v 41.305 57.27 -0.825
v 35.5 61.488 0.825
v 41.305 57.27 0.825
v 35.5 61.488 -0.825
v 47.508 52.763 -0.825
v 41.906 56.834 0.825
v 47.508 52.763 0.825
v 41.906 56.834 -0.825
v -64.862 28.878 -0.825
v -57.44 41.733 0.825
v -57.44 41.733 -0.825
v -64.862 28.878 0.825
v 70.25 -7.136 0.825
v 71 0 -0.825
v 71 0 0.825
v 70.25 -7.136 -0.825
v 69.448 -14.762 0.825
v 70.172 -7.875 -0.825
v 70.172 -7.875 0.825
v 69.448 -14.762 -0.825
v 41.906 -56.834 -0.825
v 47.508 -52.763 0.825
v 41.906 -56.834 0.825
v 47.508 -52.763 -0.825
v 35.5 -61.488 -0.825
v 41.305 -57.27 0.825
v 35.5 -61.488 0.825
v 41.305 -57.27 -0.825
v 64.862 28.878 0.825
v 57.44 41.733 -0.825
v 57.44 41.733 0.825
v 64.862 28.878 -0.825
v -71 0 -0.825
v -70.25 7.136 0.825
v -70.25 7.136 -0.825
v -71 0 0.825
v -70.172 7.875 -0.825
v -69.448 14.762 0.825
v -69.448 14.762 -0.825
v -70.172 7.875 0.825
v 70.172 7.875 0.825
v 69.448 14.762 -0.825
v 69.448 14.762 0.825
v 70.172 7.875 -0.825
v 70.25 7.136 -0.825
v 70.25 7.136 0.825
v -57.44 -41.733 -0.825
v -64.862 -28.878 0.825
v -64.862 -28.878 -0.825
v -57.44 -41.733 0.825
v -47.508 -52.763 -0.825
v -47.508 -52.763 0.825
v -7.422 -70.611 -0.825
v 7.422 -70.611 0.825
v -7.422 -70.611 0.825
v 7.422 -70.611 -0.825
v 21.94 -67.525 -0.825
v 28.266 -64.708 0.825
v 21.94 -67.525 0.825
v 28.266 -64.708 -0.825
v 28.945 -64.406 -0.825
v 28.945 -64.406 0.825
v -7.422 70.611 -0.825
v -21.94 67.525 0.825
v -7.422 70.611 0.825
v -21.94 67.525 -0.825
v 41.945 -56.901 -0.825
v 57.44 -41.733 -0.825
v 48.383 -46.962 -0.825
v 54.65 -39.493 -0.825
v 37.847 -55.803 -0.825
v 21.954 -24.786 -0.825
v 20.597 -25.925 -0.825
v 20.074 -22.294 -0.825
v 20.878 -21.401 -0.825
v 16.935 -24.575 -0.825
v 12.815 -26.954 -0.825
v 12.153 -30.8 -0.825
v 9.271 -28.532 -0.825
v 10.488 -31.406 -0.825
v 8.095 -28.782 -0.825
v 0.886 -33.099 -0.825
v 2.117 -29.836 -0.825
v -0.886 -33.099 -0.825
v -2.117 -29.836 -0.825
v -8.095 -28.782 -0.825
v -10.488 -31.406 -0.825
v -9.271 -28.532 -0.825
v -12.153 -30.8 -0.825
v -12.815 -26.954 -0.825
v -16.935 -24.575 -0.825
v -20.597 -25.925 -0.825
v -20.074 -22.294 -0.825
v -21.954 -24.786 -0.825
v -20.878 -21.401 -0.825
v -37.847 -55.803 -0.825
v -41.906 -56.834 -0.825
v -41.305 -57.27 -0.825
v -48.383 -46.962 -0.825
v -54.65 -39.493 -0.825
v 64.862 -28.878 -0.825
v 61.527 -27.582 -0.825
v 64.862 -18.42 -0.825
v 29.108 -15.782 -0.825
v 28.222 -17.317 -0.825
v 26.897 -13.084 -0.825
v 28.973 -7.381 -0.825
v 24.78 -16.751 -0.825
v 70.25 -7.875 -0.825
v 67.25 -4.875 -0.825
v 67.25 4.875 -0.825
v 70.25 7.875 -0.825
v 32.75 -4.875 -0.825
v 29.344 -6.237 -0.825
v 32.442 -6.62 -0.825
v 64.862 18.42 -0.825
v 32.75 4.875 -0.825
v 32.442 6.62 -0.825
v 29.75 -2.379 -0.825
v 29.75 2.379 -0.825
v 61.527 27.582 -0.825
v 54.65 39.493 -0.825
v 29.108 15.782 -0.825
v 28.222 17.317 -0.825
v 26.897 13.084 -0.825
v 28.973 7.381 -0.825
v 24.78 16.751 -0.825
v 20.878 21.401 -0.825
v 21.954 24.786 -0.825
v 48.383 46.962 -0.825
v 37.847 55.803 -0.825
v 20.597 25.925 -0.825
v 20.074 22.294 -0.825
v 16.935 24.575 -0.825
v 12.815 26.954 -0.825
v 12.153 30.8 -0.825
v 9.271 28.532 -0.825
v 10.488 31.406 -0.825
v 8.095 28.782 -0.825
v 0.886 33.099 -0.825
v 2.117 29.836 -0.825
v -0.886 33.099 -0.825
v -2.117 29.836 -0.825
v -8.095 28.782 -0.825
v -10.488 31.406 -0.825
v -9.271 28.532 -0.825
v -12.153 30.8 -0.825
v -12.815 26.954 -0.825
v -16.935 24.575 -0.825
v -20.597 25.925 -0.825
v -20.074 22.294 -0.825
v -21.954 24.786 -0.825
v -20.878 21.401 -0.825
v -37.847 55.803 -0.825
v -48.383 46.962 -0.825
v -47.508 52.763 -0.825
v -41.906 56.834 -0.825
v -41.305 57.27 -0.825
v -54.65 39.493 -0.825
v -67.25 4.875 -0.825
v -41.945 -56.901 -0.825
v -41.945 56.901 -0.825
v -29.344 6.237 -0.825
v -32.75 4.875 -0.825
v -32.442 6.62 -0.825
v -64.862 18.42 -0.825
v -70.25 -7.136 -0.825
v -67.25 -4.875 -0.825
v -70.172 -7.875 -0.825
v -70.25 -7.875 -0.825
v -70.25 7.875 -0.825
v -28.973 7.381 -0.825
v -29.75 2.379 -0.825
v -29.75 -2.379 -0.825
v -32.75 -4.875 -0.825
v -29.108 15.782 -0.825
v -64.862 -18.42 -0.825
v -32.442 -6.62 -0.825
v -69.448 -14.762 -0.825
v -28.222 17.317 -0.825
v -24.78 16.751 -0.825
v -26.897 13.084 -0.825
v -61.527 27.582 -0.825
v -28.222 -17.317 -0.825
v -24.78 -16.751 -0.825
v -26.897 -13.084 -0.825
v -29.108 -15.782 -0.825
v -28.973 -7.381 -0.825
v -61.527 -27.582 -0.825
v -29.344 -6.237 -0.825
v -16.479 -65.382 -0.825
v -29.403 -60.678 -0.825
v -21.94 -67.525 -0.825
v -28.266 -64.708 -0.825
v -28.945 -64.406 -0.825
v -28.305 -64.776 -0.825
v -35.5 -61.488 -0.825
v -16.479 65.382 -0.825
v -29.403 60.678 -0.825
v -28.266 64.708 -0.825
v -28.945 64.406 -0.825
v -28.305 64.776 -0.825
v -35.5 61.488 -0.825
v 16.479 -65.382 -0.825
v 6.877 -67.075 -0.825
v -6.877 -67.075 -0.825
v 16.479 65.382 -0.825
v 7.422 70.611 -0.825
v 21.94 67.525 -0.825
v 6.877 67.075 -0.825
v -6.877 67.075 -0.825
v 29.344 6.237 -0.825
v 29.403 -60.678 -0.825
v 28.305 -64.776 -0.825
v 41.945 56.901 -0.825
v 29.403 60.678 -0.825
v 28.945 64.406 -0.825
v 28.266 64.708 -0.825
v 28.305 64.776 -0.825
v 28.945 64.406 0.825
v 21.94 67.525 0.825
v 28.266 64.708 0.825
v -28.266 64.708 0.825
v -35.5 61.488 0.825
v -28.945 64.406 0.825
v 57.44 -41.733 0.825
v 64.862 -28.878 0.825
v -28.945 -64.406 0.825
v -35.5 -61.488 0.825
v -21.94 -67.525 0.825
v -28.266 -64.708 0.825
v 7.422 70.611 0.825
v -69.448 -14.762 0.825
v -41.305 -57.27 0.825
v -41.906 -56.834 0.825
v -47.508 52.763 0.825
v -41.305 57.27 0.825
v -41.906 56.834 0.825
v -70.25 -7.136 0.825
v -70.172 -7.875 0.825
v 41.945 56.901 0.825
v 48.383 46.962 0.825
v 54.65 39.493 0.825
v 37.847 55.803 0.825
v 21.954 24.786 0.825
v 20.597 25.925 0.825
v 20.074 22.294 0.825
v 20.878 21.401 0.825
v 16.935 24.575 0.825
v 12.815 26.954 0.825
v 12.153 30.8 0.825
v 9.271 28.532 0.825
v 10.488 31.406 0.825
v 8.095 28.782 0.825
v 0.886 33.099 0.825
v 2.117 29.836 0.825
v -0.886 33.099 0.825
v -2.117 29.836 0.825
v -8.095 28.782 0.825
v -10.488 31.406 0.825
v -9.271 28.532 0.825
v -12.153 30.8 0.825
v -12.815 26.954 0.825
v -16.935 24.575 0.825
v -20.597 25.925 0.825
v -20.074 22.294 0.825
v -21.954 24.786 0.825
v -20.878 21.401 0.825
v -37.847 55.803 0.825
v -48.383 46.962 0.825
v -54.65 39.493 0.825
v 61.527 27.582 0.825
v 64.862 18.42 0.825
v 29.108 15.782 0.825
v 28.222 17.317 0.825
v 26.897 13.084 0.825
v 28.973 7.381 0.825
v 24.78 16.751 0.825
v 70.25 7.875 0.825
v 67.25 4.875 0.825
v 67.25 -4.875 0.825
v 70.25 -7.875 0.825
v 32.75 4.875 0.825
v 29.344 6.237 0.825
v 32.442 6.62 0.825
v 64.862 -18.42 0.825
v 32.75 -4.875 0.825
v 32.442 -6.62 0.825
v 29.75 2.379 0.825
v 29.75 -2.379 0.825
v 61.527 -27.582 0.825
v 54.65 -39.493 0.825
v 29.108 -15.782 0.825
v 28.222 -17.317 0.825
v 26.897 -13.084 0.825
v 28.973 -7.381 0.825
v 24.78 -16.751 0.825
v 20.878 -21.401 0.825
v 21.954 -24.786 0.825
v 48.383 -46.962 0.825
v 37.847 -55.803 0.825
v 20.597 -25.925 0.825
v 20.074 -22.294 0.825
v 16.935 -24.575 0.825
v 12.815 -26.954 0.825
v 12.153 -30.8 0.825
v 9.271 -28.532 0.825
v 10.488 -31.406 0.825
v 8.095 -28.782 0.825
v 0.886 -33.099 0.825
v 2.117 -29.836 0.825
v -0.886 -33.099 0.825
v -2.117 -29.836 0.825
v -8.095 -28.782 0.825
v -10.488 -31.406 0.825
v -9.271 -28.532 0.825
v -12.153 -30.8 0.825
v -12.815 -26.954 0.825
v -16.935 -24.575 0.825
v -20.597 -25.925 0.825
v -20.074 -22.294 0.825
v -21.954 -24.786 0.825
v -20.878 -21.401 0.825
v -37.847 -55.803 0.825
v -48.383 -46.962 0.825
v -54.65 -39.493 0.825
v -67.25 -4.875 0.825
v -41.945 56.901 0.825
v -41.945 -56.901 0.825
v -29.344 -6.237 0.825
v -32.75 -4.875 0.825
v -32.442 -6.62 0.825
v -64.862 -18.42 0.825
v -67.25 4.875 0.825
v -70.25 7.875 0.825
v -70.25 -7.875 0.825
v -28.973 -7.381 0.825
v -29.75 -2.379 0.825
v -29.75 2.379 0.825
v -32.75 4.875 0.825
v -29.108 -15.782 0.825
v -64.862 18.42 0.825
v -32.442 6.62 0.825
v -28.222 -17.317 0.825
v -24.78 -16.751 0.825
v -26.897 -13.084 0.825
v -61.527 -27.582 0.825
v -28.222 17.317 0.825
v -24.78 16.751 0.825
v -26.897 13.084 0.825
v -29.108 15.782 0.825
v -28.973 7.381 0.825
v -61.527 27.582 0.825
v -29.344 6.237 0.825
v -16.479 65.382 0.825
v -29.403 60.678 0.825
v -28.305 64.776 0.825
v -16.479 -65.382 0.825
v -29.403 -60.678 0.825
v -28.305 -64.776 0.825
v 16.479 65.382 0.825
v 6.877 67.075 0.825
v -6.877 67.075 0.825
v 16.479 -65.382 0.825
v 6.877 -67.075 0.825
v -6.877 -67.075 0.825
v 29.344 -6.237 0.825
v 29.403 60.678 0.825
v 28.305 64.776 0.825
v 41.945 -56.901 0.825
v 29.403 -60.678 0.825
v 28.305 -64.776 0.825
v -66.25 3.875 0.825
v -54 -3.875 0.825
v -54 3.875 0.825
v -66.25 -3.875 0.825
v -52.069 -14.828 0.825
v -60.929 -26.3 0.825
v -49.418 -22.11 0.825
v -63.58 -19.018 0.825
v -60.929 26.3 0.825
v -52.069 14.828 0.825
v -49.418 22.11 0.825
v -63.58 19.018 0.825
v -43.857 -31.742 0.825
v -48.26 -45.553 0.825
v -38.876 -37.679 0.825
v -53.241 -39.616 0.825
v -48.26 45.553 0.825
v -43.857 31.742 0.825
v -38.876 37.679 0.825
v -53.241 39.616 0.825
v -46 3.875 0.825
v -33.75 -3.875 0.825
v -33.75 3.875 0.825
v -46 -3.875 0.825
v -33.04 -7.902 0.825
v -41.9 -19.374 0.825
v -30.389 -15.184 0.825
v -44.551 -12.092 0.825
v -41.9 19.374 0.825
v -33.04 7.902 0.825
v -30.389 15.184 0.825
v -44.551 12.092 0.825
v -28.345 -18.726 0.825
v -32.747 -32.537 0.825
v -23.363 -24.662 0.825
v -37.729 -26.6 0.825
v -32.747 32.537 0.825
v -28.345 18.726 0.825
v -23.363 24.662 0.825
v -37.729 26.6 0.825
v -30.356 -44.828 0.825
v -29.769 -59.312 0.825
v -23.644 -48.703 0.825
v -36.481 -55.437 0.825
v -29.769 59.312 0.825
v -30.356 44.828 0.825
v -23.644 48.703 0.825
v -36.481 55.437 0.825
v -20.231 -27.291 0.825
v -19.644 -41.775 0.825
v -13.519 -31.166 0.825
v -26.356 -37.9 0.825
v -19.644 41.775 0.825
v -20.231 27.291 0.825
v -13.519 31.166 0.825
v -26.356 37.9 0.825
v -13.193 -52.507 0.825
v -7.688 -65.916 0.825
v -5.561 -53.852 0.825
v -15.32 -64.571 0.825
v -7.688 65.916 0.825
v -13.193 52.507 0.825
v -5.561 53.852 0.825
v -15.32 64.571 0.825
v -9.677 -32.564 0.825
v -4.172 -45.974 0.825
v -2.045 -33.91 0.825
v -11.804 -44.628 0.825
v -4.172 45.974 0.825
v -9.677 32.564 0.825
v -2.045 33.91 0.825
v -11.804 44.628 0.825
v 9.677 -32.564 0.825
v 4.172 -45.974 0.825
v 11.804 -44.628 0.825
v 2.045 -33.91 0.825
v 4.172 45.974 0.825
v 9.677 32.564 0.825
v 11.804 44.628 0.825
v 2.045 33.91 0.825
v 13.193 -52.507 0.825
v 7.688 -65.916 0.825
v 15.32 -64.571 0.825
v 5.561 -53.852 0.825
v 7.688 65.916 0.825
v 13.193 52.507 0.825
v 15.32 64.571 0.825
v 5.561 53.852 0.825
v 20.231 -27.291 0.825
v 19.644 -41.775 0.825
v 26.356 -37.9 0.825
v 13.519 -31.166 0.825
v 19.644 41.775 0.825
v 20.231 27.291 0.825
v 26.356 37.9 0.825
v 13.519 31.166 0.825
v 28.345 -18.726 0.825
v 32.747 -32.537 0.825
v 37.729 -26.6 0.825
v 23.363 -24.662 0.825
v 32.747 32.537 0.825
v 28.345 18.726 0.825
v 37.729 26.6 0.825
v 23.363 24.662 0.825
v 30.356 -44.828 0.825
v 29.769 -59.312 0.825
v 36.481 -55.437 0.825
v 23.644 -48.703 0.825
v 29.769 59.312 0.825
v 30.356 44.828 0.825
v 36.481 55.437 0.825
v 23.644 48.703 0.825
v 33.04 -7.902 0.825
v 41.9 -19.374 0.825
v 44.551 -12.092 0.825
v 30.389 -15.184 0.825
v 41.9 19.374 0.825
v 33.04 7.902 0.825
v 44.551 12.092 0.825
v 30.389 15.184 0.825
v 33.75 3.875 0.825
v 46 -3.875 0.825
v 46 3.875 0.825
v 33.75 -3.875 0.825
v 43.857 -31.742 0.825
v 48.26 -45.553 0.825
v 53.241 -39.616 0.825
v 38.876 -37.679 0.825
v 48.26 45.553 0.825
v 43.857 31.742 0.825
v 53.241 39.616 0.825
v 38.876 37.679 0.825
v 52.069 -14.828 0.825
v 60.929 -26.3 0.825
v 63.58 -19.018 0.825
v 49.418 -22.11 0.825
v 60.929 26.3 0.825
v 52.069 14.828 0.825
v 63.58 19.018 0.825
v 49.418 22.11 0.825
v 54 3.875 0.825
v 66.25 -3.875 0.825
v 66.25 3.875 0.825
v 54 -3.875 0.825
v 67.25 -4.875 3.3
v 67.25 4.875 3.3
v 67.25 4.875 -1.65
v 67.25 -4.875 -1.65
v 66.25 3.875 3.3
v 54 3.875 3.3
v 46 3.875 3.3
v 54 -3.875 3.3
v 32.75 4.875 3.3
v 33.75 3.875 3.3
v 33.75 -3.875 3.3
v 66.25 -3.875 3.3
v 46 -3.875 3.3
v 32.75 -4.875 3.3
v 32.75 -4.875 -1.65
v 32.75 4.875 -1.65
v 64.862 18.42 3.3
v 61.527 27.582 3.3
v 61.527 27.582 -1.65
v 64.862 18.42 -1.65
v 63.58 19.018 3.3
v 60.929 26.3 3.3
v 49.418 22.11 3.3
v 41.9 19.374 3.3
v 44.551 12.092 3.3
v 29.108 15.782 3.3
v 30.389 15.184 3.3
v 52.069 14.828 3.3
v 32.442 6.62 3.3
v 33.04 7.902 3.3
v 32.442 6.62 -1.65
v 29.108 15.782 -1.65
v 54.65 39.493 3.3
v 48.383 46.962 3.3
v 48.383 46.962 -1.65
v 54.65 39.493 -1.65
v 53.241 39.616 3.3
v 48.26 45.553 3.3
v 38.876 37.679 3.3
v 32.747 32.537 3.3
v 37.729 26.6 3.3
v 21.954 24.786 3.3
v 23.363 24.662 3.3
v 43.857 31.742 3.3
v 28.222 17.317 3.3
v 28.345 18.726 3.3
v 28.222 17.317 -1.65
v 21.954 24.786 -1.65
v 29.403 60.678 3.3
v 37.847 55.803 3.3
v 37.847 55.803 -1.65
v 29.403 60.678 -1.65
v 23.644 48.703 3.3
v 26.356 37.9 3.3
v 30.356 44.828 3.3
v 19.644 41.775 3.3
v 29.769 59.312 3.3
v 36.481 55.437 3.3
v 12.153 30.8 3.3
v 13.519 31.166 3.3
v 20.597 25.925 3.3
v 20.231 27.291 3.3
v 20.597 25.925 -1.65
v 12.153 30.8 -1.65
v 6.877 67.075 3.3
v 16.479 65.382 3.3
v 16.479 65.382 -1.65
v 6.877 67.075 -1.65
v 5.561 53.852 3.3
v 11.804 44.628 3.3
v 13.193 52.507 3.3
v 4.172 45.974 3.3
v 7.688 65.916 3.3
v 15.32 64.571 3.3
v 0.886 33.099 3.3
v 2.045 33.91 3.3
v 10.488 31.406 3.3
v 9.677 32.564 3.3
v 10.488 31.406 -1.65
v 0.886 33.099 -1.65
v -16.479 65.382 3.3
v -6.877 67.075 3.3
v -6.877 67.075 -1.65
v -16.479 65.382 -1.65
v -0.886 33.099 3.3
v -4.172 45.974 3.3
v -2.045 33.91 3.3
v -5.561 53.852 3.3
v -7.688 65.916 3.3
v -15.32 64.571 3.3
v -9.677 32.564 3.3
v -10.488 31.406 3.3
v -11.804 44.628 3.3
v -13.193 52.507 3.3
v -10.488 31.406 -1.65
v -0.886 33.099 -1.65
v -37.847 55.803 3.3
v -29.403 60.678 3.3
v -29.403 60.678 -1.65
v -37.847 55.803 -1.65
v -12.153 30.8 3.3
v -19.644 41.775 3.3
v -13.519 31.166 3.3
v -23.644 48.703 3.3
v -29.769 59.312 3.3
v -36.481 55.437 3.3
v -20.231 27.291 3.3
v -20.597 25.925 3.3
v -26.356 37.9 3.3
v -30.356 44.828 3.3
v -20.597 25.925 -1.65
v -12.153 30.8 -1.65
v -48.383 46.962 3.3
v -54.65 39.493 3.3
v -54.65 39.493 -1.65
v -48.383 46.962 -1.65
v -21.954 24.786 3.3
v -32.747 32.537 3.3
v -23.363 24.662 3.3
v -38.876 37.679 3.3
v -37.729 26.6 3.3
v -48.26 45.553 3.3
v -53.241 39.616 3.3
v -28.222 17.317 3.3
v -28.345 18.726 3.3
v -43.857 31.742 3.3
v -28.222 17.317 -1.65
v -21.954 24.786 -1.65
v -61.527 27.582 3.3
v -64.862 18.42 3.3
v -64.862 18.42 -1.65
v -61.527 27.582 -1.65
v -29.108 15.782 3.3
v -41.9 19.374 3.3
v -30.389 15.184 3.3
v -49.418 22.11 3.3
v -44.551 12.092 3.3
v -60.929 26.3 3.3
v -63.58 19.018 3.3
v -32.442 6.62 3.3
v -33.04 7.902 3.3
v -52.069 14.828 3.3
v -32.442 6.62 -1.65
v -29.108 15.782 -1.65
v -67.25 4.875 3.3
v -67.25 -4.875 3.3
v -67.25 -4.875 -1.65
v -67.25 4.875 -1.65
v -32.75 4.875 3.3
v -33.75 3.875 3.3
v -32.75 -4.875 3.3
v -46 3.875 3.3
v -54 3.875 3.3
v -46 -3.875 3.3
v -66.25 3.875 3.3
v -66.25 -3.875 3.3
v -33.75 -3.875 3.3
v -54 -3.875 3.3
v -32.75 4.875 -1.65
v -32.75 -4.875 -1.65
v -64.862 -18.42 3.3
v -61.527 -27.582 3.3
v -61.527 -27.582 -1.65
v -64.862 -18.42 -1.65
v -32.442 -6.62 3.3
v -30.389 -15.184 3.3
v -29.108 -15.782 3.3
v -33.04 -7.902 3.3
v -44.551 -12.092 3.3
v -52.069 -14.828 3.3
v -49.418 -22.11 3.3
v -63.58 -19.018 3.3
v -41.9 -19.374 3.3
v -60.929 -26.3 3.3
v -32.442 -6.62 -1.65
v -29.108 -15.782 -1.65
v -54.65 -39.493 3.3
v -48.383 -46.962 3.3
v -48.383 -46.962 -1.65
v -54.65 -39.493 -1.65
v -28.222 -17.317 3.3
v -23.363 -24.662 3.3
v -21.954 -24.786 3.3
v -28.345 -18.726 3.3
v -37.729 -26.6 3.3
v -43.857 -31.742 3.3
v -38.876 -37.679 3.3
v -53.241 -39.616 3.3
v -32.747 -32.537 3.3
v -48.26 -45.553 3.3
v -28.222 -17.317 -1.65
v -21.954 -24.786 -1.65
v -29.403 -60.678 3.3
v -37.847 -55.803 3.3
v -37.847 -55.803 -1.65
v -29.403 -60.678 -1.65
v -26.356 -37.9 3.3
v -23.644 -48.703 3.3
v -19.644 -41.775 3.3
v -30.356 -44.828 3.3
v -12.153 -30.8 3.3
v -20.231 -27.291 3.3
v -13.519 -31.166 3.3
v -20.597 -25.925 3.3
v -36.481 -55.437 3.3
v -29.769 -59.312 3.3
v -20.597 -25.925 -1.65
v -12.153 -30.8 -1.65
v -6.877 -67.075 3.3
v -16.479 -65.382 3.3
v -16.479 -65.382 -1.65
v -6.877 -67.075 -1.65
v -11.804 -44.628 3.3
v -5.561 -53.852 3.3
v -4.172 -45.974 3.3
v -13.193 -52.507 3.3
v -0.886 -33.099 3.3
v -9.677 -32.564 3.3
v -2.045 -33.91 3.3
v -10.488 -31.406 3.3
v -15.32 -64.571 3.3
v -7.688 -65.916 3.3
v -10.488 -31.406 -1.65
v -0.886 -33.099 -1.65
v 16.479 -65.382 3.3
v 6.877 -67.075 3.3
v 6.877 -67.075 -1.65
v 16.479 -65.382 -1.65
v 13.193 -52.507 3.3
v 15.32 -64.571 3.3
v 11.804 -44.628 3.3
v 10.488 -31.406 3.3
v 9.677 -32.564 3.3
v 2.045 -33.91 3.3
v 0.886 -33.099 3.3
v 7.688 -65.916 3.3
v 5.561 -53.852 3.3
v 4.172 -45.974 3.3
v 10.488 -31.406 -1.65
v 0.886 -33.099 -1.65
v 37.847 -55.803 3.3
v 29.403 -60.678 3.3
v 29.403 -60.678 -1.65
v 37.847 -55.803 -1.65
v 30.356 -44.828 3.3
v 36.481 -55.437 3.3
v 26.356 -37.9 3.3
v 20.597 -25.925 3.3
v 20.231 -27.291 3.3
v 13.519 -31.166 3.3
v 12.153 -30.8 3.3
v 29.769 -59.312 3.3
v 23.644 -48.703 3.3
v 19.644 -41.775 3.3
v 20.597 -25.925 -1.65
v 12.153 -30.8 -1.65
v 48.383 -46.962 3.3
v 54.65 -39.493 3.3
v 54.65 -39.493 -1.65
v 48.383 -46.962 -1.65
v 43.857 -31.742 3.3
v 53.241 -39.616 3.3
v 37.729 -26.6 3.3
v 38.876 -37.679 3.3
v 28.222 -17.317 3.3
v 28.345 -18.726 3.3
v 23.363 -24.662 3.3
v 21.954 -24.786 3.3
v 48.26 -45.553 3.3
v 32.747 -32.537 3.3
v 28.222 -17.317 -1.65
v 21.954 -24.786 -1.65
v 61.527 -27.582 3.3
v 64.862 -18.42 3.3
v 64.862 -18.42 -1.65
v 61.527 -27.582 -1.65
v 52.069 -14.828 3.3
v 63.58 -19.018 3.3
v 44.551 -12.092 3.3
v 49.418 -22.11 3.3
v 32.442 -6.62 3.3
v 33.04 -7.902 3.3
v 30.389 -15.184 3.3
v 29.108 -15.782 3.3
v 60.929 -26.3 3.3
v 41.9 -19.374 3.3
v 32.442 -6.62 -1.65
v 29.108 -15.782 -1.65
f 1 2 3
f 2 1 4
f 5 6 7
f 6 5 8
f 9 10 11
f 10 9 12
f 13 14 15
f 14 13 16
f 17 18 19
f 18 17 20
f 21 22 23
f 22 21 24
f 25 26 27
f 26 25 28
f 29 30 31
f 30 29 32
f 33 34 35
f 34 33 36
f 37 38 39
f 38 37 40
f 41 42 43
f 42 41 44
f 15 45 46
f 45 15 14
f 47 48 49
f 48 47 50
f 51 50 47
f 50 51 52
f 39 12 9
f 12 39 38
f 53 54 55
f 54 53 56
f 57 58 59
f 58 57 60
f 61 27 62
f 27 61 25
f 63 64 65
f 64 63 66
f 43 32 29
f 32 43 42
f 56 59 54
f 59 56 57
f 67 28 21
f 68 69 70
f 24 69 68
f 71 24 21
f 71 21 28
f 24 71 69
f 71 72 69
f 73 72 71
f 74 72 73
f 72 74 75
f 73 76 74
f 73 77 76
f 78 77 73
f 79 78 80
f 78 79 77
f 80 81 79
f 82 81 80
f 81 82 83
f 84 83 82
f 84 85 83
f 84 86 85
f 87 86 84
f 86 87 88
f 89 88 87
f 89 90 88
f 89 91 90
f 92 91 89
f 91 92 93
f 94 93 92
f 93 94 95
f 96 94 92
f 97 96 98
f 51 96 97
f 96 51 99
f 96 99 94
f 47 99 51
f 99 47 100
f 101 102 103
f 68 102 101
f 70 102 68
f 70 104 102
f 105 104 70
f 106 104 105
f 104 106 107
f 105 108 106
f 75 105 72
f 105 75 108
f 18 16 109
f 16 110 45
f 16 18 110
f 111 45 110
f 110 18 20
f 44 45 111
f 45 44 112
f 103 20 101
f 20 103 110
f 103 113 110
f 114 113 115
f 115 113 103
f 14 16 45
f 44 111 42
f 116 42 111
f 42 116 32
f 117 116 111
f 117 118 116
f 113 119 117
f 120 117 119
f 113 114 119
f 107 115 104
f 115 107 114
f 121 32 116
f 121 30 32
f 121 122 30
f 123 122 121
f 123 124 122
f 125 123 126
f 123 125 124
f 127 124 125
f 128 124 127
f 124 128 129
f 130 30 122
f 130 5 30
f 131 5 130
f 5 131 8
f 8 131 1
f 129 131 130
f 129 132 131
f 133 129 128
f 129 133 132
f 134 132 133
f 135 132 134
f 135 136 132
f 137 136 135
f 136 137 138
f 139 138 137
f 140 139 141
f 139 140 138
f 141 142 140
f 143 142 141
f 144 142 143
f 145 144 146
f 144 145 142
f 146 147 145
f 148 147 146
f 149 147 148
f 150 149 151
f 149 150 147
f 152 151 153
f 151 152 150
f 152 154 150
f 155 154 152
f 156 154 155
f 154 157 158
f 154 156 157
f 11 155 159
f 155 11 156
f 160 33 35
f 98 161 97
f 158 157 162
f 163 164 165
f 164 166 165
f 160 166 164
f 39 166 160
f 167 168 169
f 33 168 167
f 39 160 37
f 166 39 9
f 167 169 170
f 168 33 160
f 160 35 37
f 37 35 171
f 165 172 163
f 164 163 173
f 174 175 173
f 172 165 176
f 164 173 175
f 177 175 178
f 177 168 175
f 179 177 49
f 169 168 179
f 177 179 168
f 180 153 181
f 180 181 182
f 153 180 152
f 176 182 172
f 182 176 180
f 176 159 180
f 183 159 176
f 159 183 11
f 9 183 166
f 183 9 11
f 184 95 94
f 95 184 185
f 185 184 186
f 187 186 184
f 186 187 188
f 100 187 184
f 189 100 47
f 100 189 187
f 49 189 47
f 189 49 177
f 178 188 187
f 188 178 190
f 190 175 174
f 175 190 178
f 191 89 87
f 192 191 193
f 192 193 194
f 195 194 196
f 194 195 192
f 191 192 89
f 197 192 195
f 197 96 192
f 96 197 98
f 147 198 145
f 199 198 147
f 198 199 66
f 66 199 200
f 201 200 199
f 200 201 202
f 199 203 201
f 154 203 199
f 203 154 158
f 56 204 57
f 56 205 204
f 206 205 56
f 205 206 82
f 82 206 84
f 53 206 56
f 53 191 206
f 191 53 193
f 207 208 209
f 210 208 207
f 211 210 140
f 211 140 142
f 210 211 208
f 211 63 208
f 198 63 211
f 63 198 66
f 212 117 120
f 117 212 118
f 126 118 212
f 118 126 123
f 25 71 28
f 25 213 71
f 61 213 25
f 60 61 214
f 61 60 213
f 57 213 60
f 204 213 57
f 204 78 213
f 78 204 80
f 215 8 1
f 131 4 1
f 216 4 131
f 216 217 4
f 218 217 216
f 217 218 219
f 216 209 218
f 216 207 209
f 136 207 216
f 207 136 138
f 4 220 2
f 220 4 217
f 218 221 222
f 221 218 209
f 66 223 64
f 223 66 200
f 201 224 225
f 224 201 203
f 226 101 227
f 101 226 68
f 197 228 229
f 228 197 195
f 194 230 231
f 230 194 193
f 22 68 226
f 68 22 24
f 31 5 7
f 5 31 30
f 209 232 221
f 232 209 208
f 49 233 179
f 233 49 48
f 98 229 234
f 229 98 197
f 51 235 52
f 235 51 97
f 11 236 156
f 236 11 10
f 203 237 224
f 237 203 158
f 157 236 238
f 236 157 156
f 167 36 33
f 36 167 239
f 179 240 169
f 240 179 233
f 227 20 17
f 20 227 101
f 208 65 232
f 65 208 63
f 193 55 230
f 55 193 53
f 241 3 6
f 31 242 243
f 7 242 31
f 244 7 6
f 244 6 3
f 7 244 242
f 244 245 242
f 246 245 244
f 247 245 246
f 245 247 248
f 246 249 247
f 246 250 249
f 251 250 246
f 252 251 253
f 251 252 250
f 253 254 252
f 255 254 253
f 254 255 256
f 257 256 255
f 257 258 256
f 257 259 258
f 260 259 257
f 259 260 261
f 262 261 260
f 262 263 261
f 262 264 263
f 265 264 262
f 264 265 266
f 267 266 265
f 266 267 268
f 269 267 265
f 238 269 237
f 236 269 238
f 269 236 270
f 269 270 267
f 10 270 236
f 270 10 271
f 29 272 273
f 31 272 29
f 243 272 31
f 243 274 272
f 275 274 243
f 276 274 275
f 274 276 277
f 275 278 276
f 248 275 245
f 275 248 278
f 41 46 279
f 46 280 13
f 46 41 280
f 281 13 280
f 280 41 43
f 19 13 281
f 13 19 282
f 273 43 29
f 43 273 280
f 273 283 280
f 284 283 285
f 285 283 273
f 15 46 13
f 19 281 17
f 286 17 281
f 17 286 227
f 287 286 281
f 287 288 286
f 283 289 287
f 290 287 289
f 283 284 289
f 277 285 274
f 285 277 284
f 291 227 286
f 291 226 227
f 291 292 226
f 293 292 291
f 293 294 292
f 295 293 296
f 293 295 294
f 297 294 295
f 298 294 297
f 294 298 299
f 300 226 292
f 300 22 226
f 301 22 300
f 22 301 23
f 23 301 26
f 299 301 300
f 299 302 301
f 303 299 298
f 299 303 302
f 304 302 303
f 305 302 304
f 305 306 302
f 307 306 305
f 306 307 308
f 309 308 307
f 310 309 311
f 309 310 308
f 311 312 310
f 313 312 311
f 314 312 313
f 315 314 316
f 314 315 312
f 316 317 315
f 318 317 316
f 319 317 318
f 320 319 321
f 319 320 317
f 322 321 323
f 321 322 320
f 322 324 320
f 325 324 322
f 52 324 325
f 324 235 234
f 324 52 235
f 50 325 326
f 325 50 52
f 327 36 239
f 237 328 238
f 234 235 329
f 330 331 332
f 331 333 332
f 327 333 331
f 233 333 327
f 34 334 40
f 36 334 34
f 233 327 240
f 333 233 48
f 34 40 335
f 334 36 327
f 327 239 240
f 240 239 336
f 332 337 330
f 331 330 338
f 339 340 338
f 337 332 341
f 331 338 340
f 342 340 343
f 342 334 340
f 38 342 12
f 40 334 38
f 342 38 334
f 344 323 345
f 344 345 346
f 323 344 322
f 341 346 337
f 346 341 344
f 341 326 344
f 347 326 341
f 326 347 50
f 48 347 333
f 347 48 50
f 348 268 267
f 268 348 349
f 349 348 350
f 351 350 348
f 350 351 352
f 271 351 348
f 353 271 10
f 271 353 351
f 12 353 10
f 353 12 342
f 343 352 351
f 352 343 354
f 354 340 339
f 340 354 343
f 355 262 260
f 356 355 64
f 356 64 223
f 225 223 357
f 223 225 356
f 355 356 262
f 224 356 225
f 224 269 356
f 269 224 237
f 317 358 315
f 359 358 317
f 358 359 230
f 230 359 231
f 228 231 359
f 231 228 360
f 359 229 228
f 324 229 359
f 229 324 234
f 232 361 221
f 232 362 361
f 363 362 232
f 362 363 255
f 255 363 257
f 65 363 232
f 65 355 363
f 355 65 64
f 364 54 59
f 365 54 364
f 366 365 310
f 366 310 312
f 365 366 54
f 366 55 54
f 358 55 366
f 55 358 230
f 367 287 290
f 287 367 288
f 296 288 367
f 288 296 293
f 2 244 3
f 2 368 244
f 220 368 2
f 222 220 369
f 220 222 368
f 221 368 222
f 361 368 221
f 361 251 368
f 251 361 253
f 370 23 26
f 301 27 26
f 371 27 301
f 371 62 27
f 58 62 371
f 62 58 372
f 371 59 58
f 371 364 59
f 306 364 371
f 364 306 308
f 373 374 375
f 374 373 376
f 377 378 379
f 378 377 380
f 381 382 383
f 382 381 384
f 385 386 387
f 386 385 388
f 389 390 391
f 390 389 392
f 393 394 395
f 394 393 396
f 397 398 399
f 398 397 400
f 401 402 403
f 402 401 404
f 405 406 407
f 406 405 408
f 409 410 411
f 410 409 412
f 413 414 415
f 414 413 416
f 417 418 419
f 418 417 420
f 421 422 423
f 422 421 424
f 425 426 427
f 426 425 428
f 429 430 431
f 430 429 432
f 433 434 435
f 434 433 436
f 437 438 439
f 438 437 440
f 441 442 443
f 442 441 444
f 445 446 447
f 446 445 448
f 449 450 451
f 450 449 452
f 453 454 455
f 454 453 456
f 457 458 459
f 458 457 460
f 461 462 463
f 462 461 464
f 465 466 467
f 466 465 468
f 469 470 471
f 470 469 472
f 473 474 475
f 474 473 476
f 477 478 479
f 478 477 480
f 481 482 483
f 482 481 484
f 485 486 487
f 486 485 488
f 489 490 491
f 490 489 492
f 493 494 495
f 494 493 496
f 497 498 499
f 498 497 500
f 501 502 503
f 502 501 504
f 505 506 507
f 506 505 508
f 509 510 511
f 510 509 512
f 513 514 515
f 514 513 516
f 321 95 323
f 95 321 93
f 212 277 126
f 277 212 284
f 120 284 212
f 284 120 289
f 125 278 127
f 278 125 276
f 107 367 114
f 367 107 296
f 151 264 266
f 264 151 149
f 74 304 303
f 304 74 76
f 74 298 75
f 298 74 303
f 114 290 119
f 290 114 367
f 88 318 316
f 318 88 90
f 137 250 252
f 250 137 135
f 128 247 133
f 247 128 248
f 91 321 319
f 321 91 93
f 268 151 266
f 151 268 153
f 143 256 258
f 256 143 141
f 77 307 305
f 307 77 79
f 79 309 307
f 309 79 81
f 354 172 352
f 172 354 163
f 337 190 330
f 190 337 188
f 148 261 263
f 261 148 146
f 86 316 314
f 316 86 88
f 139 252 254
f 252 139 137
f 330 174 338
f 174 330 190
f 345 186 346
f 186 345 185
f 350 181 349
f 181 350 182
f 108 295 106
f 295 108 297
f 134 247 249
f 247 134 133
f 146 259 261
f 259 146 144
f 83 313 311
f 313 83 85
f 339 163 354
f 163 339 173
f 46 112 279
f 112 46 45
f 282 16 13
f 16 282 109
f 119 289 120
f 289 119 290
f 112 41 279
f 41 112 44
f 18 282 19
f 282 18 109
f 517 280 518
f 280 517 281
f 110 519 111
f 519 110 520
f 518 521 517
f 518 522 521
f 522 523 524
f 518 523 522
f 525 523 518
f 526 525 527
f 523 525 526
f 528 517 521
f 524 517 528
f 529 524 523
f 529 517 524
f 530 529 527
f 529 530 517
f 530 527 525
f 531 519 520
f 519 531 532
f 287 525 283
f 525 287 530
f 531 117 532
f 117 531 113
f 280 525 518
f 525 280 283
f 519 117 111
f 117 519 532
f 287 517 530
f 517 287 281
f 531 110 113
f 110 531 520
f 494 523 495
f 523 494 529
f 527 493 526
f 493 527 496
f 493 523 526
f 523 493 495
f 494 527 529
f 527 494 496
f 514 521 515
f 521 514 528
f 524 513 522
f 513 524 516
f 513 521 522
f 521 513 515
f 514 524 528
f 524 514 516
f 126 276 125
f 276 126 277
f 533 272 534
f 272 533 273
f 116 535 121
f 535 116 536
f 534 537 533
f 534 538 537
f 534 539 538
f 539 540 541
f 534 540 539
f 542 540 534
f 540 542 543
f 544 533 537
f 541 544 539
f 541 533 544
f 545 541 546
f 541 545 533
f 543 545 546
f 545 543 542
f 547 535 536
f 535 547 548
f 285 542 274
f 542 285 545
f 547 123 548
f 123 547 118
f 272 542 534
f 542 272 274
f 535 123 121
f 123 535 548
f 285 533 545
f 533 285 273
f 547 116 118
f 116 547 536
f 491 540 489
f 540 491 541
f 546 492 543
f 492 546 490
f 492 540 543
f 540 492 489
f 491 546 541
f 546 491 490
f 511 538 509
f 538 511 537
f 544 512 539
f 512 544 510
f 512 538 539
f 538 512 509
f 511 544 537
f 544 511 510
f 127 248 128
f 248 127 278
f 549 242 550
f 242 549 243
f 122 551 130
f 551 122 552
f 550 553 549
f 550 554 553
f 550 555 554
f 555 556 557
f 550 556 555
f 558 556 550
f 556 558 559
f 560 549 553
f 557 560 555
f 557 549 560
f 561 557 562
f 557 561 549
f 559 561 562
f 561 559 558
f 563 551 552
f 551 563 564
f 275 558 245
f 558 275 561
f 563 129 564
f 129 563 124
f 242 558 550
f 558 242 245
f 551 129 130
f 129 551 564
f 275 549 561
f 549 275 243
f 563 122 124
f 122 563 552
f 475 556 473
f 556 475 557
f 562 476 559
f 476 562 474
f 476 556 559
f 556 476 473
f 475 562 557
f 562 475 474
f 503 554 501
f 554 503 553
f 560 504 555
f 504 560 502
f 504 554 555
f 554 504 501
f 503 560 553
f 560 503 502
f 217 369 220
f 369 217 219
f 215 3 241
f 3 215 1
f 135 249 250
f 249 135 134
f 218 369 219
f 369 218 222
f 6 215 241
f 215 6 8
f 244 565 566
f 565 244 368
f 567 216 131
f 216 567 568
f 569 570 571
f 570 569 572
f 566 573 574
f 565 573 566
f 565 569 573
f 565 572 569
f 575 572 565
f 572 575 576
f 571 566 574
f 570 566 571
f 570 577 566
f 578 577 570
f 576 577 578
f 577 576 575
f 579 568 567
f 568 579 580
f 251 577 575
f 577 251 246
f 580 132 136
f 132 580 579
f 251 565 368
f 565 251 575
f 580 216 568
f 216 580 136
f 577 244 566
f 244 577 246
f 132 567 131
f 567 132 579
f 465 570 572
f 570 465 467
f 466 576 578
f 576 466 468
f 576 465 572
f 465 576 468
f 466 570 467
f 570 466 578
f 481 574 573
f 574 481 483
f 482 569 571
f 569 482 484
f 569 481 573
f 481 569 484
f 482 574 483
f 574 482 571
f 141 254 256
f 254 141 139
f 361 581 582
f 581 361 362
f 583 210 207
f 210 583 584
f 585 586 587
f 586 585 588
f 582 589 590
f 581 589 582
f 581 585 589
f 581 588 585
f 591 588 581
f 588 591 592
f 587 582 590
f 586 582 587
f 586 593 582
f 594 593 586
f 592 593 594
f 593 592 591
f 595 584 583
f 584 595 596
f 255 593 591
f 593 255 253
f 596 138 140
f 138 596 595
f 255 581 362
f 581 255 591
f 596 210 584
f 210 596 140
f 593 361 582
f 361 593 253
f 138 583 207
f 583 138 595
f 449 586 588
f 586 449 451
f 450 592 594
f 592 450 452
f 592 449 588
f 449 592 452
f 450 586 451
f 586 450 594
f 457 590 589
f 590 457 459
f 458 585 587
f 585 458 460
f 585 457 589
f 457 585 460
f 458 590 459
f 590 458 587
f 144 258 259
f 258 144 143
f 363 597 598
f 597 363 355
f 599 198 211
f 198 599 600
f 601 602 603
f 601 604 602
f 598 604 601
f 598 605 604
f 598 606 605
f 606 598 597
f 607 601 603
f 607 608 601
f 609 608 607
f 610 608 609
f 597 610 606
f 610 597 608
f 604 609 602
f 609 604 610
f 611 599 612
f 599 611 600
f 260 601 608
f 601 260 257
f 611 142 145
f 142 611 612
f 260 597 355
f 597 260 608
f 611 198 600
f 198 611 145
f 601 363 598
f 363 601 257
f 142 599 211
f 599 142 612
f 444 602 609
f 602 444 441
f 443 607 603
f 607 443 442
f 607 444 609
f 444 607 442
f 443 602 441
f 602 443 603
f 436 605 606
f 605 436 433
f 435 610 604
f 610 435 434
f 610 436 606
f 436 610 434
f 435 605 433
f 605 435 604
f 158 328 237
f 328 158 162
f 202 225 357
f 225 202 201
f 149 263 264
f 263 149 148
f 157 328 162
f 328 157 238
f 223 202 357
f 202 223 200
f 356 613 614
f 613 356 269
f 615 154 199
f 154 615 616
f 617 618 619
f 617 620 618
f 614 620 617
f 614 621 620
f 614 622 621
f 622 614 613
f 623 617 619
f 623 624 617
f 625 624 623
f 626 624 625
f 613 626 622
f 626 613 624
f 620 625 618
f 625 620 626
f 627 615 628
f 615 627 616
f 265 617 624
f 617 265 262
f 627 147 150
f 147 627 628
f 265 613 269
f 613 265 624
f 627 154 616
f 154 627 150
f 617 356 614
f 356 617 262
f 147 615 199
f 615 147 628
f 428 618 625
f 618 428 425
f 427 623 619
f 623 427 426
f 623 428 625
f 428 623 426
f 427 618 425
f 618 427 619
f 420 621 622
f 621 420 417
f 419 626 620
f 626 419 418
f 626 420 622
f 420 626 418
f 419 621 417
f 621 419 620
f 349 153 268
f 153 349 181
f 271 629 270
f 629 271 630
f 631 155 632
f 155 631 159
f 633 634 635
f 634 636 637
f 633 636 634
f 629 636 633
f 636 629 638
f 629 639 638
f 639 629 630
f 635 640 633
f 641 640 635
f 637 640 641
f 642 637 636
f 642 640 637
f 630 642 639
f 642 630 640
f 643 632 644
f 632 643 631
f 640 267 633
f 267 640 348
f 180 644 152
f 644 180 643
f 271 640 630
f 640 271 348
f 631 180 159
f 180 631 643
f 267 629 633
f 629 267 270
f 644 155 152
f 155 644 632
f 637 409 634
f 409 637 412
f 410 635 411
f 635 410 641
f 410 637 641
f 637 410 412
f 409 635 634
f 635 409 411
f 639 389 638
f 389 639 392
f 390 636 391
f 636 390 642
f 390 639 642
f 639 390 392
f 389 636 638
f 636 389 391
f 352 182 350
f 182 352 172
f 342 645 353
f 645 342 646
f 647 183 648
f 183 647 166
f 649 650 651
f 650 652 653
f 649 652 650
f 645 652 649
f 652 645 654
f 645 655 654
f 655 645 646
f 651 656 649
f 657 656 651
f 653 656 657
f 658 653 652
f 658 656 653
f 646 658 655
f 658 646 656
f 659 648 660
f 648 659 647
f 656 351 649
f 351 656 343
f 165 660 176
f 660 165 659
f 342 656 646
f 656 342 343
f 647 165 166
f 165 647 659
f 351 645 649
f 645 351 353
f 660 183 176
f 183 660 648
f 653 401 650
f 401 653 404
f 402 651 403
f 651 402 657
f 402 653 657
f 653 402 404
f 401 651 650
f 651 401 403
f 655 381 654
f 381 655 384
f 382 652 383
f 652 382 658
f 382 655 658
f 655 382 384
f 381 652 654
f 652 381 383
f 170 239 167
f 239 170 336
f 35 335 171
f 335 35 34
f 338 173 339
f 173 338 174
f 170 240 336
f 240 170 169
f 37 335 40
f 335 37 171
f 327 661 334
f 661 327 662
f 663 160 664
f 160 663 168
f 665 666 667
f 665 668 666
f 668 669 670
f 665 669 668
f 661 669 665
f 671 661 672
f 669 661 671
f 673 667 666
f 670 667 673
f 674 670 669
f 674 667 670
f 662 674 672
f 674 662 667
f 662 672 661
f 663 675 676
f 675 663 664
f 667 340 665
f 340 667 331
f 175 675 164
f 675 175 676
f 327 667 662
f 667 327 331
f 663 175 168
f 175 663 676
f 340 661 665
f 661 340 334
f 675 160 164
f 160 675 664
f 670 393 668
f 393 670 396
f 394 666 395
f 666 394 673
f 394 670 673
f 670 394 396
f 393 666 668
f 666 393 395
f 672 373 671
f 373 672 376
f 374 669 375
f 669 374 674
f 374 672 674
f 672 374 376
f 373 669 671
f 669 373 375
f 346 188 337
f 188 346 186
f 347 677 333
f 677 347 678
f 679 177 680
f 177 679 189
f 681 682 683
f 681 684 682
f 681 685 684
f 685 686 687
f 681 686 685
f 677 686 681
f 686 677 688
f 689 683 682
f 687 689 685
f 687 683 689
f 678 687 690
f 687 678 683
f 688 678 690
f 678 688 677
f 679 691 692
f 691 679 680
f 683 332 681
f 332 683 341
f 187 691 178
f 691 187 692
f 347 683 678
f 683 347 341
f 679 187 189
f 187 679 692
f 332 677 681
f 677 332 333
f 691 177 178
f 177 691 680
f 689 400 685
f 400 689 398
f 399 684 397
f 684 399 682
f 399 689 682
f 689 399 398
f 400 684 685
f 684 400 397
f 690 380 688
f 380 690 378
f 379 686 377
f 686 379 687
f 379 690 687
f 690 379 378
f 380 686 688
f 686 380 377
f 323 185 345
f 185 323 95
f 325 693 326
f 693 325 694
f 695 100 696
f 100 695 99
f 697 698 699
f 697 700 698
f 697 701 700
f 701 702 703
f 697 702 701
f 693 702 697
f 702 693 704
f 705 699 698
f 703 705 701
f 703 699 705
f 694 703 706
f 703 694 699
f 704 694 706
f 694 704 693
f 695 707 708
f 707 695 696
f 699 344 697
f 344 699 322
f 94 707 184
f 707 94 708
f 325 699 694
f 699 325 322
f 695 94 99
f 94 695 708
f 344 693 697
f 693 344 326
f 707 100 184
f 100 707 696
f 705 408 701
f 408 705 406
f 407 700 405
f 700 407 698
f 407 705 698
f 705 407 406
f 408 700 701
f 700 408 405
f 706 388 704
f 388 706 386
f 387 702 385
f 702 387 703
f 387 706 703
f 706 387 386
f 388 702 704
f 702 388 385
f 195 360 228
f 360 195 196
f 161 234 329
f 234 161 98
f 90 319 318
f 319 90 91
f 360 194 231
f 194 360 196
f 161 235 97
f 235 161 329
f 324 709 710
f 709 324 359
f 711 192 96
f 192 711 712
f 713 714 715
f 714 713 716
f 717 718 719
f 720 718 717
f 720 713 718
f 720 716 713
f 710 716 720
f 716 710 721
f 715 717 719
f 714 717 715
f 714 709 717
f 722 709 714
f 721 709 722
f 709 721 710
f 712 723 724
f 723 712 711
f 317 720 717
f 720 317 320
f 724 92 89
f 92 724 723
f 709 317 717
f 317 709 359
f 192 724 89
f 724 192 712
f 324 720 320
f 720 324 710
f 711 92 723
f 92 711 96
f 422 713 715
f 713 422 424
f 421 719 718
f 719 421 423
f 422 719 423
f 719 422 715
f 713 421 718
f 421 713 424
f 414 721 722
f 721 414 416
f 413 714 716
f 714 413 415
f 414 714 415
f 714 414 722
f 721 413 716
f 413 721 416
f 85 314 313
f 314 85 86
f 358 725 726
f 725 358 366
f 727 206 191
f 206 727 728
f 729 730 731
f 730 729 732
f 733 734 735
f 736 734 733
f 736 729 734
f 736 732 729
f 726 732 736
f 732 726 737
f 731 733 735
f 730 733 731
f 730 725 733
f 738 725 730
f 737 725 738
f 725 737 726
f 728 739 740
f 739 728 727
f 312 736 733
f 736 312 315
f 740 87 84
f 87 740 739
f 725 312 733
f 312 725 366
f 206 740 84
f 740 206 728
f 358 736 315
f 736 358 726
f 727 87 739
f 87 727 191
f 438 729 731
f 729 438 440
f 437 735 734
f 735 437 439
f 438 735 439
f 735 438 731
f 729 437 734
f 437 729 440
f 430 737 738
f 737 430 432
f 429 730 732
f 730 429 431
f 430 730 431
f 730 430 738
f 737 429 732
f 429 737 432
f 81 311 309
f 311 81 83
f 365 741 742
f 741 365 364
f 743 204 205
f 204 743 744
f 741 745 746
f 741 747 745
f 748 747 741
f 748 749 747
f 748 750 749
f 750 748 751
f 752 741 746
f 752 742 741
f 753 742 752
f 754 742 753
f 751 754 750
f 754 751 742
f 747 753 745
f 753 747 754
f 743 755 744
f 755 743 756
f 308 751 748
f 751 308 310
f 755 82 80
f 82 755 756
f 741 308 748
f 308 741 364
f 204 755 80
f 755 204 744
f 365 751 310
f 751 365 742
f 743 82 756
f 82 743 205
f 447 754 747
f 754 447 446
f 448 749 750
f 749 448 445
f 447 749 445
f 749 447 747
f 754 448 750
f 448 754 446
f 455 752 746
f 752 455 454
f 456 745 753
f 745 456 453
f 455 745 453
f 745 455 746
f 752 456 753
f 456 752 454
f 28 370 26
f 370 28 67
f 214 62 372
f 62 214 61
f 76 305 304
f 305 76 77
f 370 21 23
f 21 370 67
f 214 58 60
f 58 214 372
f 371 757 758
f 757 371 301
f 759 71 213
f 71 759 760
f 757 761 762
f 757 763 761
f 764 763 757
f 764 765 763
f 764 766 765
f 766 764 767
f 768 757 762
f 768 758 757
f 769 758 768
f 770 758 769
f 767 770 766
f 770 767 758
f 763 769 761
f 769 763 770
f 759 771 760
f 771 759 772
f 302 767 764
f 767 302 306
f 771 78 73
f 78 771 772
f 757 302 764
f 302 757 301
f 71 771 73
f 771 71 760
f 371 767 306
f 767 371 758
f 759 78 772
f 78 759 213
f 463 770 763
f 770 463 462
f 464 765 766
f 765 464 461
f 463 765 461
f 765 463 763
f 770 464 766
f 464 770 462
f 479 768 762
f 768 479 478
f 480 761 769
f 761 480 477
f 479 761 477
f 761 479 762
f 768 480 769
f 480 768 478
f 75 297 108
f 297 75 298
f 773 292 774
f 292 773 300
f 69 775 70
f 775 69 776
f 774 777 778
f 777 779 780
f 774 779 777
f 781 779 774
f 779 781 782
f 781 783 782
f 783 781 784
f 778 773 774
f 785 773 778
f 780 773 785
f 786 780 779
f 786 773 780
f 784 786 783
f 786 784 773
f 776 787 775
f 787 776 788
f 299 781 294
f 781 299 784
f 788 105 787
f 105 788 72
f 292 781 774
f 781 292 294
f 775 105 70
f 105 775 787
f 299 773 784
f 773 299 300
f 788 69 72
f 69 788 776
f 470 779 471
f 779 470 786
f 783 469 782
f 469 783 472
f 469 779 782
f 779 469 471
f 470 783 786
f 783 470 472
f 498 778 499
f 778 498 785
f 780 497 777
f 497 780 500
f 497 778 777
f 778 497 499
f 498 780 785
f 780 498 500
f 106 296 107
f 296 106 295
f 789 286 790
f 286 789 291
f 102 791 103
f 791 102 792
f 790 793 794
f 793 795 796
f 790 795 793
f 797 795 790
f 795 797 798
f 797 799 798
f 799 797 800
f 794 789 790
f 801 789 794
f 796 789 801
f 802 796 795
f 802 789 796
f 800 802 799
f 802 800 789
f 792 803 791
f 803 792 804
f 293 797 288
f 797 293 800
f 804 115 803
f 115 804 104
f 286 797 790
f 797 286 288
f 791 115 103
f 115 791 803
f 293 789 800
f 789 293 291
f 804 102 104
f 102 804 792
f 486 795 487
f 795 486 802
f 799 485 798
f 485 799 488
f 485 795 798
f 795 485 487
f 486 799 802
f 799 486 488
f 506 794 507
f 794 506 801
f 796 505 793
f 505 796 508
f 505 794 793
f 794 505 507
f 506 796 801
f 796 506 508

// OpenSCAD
$footW = 24.5;
$footH = 15.5;
$spacer = 16;
$depth = 5;
$rim = 2;
$blockW = $footW * 2 + $spacer*2;
$blockL = $footH + $spacer;

module footplate() {
    difference() {
        union() {
        cube([$blockW, $blockL, $depth], true);
        translate([0, 0, $depth/2]) { 
            cube([$footW*2+$spacer + $rim*2, 
            $footH+$rim*2, $depth*3], true);
        }
        }
        translate([-($footW + $spacer/2), 
                   -$footH/2, 0]) {
            cube([$footW, $footH, 30], false);
        }
        translate([$spacer / 2, -$footH/2, 0]) {
            cube([$footW, $footH, 30], false);
        }
    }
}

scale([.5, .5, .33]) {
    difference() {
        translate([0, 0, 0]) { cylinder(5, 142, 142, true);}
        translate([0, 0, 0]) { cylinder(25, 60, 60, true);}
    }
    union() {
        for (i = [0:18]) {
                rotate([ 0, 0, i * 20]) {
                    translate([100, 0, 0]) {
                    footplate();
                }
            }
        }
    }

}
